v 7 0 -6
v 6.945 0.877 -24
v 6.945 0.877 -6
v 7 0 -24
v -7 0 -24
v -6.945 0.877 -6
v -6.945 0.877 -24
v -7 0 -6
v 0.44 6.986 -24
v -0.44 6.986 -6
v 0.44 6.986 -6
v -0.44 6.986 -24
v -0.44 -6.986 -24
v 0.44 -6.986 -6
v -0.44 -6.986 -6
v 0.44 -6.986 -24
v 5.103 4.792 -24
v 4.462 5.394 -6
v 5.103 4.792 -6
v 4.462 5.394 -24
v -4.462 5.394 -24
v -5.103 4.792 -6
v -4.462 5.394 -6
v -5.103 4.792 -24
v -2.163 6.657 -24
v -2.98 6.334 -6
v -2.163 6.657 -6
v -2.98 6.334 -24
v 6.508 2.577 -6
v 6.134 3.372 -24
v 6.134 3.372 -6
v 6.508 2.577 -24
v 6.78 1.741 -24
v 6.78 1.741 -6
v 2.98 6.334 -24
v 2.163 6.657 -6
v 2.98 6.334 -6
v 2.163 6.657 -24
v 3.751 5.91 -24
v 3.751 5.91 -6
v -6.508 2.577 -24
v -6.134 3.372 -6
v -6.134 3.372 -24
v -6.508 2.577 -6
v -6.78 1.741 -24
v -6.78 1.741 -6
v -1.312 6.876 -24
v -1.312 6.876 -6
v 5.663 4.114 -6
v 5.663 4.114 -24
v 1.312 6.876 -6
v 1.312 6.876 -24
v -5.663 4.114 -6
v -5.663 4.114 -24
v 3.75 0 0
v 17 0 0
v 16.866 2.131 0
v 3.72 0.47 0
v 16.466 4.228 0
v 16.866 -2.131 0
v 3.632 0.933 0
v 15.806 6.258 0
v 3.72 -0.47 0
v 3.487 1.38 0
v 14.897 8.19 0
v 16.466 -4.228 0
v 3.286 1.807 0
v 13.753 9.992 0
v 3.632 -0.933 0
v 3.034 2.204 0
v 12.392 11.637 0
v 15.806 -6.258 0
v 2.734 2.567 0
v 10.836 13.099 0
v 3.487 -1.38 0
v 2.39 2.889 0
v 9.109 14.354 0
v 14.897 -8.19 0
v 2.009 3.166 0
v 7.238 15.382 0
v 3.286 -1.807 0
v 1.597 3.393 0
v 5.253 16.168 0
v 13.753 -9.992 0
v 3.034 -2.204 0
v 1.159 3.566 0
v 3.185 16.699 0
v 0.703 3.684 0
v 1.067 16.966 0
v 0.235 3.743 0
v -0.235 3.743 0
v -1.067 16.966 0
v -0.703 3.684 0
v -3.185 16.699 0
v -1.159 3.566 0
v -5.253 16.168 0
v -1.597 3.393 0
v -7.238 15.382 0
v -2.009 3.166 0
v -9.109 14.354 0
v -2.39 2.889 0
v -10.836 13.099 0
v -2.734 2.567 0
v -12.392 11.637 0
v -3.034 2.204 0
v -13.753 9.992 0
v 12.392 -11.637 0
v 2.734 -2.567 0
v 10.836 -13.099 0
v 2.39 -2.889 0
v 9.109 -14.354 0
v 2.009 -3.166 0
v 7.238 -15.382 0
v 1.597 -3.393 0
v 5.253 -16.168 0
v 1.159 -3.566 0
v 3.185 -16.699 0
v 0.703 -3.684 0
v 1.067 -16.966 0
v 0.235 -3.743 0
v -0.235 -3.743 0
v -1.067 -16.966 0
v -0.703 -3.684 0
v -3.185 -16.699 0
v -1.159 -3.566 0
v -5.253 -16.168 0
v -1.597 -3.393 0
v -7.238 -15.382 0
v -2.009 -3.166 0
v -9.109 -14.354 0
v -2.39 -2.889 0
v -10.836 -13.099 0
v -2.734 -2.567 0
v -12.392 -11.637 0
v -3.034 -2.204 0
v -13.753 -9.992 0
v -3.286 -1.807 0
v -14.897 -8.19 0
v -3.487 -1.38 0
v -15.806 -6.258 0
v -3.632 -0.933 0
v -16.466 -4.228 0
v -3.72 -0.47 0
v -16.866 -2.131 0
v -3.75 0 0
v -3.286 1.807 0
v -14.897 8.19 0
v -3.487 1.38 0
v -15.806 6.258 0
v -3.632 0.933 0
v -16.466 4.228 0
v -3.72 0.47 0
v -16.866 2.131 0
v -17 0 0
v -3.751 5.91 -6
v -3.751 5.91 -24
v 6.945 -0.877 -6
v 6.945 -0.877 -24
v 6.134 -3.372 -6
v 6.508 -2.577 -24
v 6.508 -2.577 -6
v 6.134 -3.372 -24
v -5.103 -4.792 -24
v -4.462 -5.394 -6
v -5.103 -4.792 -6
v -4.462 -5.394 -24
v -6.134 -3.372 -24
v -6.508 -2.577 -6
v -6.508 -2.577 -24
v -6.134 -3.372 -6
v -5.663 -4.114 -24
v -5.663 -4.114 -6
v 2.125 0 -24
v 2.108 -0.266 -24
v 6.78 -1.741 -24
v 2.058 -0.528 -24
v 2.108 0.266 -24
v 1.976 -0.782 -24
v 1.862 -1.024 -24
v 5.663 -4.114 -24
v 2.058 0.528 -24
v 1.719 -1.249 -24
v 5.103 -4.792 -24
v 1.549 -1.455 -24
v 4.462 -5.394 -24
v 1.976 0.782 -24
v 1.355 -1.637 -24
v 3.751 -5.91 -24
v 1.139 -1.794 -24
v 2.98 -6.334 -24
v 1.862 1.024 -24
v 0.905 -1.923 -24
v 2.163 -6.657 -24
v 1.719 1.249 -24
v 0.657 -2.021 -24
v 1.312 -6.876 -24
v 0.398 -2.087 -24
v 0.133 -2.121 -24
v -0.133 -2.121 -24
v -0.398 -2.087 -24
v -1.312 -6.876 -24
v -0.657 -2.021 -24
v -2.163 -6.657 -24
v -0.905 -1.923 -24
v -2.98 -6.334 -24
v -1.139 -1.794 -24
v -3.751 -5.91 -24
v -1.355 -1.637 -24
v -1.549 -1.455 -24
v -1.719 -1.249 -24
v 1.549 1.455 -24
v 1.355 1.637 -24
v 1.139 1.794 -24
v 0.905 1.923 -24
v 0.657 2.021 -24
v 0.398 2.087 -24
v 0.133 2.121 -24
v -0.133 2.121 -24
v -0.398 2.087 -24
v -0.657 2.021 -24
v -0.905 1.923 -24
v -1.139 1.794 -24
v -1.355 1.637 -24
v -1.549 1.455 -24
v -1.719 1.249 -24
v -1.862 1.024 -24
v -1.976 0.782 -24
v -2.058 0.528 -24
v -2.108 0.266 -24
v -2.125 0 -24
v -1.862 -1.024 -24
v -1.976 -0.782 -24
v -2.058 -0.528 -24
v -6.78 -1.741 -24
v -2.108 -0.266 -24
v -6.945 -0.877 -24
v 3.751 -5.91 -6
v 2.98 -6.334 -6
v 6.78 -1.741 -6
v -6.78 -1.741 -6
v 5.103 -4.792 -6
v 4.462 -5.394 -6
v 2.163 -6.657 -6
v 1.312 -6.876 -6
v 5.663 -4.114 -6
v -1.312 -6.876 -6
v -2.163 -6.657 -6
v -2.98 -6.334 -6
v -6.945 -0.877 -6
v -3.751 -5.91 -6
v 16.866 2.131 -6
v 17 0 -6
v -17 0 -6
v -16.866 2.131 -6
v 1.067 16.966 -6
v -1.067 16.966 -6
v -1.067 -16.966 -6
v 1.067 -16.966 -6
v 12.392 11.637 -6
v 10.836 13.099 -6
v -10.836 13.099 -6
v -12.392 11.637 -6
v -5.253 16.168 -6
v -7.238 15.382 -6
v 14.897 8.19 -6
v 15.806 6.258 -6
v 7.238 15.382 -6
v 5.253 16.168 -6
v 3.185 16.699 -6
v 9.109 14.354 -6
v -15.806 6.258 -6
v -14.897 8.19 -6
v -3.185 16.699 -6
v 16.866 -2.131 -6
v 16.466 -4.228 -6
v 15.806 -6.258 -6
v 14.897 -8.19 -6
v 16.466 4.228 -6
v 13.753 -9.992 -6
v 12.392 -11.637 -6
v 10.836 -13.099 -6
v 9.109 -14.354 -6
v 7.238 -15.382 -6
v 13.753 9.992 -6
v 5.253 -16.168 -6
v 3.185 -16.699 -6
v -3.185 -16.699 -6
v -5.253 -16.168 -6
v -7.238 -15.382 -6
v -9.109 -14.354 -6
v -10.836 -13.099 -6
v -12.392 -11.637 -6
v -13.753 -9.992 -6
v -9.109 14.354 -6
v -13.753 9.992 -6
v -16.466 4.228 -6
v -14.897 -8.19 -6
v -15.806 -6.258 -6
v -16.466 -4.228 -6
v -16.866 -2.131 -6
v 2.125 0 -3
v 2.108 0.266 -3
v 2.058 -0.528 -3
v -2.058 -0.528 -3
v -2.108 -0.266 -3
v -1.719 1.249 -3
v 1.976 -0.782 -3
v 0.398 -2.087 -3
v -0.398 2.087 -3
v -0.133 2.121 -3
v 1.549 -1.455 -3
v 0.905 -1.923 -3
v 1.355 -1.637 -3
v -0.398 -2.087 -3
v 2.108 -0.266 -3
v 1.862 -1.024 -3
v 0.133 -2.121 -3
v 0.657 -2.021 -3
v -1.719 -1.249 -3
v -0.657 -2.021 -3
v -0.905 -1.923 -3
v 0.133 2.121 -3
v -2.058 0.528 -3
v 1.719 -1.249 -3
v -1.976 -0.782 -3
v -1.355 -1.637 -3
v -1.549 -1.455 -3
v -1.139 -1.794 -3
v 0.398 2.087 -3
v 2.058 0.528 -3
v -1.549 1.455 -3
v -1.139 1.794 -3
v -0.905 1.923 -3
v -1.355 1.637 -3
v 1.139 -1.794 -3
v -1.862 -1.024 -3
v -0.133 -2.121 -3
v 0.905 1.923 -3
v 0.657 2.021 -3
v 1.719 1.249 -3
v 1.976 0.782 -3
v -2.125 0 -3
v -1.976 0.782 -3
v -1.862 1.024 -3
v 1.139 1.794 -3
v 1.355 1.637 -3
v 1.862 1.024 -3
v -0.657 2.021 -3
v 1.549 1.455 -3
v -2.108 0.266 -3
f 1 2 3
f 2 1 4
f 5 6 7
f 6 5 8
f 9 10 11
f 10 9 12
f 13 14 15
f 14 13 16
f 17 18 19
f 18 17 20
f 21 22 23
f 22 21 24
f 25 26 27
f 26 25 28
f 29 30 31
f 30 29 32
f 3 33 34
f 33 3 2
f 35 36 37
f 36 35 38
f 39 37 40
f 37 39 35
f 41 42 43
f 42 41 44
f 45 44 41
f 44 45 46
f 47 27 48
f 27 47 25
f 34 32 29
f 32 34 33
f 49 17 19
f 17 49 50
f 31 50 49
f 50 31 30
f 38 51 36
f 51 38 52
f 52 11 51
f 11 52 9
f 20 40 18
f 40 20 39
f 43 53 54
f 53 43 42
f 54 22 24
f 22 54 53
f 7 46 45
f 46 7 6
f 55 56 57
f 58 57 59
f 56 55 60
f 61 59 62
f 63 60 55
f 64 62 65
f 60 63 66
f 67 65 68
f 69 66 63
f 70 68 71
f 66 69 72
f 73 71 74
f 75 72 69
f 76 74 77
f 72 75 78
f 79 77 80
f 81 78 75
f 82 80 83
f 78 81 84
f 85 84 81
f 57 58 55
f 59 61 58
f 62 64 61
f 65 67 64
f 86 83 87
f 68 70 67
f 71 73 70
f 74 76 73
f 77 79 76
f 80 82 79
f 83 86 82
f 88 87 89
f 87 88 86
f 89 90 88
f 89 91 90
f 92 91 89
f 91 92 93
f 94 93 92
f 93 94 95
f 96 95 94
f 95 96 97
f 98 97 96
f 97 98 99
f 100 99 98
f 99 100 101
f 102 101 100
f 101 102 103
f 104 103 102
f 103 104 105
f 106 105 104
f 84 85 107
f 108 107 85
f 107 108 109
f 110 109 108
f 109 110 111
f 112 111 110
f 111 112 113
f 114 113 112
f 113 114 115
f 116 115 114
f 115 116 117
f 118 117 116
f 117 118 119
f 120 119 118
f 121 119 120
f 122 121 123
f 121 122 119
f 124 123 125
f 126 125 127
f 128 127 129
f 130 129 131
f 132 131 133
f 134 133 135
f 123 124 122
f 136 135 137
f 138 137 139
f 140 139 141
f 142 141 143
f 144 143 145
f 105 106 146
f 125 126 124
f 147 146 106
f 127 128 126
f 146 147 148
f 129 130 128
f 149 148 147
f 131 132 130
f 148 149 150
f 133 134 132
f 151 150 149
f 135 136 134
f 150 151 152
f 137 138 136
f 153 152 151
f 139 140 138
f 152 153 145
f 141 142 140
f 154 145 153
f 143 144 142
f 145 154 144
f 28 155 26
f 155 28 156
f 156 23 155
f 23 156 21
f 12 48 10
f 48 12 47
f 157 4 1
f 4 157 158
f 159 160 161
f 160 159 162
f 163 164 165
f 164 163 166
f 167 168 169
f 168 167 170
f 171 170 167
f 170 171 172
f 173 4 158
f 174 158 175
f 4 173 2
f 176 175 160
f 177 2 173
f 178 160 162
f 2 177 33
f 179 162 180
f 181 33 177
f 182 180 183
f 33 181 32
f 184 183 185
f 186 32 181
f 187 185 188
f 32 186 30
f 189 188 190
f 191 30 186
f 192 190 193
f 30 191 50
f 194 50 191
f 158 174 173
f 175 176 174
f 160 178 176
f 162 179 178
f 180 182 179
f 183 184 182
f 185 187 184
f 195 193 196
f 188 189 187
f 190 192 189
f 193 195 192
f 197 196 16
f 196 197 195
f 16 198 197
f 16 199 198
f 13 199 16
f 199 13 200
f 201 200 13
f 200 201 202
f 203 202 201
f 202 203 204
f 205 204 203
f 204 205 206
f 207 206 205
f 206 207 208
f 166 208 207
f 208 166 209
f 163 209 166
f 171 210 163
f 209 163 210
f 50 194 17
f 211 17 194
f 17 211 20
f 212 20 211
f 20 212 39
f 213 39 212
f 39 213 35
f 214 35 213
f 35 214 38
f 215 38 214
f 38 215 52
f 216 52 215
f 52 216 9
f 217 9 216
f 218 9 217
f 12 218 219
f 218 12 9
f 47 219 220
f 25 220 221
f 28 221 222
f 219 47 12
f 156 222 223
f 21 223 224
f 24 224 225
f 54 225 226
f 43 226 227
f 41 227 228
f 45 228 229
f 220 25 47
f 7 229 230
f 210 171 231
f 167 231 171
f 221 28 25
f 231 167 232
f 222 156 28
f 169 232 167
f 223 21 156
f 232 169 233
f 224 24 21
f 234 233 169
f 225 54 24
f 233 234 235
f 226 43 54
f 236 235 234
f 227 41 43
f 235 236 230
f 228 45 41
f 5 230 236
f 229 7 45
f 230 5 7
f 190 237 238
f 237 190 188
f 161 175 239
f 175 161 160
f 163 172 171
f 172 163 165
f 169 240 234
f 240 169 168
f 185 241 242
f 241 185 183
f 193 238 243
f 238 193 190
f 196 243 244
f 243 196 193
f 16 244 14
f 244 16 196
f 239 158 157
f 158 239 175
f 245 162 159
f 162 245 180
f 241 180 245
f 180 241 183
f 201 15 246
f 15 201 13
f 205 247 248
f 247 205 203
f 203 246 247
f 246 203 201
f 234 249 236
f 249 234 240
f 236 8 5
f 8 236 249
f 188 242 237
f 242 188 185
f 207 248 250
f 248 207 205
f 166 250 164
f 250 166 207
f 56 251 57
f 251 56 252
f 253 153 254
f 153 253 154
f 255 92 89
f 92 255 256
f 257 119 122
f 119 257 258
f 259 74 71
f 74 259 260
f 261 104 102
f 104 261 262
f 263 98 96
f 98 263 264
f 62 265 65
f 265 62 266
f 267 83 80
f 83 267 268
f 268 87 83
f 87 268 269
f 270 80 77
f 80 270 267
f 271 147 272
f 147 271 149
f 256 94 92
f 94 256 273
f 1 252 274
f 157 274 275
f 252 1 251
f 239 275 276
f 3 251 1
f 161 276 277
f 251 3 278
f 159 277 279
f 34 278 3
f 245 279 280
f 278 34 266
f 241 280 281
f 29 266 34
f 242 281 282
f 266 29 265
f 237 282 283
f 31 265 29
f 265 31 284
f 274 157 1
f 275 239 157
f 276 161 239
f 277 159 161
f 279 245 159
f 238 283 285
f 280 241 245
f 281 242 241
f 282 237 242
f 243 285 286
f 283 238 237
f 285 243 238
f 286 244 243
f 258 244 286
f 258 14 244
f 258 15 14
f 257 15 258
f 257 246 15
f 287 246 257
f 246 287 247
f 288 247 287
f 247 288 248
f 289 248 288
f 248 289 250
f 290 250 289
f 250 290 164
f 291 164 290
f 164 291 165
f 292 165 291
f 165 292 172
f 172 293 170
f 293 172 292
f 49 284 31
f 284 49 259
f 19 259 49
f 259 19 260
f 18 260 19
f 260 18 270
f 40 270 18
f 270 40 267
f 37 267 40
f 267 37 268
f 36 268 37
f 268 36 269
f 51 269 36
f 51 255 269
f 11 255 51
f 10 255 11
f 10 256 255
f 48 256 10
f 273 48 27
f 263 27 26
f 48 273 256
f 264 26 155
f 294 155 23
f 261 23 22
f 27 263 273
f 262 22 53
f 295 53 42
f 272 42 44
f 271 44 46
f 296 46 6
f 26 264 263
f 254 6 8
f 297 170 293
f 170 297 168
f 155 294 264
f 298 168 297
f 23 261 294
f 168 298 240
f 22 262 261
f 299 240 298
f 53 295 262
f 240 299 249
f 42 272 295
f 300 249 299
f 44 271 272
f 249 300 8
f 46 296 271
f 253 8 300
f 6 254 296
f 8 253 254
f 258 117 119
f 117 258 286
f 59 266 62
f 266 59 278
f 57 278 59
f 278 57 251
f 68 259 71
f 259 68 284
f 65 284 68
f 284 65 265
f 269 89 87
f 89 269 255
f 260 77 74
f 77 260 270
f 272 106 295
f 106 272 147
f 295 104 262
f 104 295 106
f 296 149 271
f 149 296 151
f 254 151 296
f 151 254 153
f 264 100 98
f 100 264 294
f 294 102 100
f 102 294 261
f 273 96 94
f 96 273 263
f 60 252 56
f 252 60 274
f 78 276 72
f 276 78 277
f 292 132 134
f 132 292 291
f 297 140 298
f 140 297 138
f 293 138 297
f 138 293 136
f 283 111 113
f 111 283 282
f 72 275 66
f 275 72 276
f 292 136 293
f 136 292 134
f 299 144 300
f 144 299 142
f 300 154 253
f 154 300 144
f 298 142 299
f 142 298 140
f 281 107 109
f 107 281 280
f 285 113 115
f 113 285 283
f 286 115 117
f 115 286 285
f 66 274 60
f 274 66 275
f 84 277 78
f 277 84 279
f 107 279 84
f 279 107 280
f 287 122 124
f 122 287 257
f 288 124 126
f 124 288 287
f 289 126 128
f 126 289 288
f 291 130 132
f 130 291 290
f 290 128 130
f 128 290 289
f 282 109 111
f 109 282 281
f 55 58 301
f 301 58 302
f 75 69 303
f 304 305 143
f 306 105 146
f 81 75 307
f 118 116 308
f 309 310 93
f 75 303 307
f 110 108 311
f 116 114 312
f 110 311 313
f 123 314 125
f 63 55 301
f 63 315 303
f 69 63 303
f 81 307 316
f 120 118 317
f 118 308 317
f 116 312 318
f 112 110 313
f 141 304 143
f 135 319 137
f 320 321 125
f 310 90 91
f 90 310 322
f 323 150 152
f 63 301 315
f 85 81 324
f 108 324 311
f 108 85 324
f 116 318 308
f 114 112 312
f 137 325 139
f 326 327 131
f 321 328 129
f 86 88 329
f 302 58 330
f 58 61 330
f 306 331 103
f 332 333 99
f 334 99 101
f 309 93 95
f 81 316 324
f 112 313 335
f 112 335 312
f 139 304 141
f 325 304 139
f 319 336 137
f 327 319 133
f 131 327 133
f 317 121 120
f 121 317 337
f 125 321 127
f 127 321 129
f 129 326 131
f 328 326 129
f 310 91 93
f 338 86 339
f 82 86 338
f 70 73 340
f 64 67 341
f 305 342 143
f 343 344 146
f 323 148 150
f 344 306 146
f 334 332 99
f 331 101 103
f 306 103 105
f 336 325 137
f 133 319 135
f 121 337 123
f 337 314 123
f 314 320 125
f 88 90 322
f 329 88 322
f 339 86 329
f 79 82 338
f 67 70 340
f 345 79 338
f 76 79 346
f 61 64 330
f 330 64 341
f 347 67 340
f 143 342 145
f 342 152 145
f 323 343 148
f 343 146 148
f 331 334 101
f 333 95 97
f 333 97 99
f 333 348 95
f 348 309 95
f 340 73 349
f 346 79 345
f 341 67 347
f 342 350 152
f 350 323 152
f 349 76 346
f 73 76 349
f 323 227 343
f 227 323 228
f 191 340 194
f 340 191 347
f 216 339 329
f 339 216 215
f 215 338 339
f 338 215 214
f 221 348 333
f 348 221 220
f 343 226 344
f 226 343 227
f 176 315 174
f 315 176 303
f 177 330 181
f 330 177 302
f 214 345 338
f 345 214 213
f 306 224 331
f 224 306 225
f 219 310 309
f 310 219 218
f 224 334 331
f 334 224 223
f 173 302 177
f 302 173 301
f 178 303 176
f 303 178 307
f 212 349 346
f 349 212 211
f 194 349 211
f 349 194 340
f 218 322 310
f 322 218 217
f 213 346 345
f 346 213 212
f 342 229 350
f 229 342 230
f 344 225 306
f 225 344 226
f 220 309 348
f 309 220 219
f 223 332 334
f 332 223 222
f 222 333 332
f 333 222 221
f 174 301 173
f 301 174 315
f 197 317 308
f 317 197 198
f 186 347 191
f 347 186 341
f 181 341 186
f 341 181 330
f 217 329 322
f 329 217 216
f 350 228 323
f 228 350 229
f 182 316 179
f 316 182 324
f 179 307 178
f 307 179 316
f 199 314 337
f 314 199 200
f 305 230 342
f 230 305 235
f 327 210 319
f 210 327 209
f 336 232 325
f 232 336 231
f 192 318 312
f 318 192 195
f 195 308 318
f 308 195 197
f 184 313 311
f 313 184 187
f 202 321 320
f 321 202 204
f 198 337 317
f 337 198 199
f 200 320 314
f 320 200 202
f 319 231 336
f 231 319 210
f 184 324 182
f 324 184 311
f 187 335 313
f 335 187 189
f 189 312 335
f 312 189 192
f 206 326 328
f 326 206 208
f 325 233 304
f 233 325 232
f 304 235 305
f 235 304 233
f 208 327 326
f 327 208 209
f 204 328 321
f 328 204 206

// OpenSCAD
$fn = 50;


difference() {
	union() {
		translate(v = [0, 0, -24.0000000000]) {
			cylinder(h = 24, r = 7.0000000000);
		}
		translate(v = [0, 0, -6.0000000000]) {
			cylinder(h = 6, r = 17.0000000000);
		}
	}
	union() {
		translate(v = [0, 0, 0]) {
			rotate(a = [0, 0, 0]) {
				difference() {
					union() {
						#translate(v = [0, 0, -24.0000000000]) {
							cylinder(h = 24, r = 2.0000000000);
						}
						#translate(v = [0, 0, -3]) {
							cylinder(h = 3, r1 = 2.1250000000, r2 = 3.7500000000);
						}
						#translate(v = [0, 0, -24.0000000000]) {
							cylinder(h = 24, r = 2.1250000000);
						}
						#translate(v = [0, 0, -24.0000000000]) {
							cylinder(h = 24, r = 2.0000000000);
						}
					}
					union();
				}
			}
		}
	}
}
